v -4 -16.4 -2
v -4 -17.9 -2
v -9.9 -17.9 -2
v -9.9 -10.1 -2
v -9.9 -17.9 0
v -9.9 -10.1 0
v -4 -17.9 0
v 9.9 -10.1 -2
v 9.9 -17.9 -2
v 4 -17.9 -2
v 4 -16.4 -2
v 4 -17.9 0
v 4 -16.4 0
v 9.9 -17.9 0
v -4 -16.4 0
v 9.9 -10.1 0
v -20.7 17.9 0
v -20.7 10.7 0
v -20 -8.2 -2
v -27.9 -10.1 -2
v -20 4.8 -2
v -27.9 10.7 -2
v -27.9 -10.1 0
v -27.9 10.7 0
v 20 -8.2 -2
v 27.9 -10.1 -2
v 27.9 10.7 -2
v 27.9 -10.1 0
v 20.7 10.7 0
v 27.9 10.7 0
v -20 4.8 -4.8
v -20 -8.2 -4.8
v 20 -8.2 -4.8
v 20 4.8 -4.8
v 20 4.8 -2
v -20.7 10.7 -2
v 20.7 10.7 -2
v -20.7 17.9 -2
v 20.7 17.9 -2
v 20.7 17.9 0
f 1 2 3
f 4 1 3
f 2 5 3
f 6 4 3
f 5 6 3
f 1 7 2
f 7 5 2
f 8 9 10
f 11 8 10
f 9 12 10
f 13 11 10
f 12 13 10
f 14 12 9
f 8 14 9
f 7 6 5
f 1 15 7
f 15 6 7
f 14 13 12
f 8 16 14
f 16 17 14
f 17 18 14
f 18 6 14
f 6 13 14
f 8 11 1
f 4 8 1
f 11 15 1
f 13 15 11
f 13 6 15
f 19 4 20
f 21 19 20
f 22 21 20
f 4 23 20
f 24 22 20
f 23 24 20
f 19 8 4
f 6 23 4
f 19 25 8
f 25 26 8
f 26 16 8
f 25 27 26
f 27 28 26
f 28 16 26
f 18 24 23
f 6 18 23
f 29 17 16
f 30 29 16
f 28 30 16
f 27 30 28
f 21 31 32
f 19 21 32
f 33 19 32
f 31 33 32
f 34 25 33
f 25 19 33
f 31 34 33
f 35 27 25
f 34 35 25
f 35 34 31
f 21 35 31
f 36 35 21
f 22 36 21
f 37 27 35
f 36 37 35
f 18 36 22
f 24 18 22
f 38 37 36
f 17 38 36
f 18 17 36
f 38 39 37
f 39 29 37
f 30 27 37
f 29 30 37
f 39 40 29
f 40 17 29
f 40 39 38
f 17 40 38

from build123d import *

# Parameters (mm, degrees)
BOSS_EXTRUDE1_DEPTH = 2
SKETCH2_W           = 40
SKETCH2_H           = 13
BOSS_EXTRUDE2_DEPTH = 2.8


with BuildPart() as part:
    # Sketch1 → Boss-Extrude1 (new body)
    with BuildSketch(Plane.XY):
        Polygon((-9.9, -17.9), (-4, -17.9), (-4, -16.4), (4, -16.4), (4, -17.9), (9.9, -17.9), (9.9, -10.1), (27.9, -10.1), (27.9, 10.7), (20.7, 10.7), (20.7, 17.9), (-20.7, 17.9), (-20.7, 10.7), (-27.9, 10.7), (-27.9, -10.1), (-9.9, -10.1), align=None)
    extrude(amount=-BOSS_EXTRUDE1_DEPTH)

    # Sketch2 → Boss-Extrude2 (add)
    with BuildSketch(Plane(origin=(0, 0, -2), x_dir=(-1, 0, 0), z_dir=(0, 0, -1))):
        with Locations((0, -1.7)):
            Rectangle(SKETCH2_W, SKETCH2_H)
    extrude(amount=BOSS_EXTRUDE2_DEPTH)


solid = part.part
